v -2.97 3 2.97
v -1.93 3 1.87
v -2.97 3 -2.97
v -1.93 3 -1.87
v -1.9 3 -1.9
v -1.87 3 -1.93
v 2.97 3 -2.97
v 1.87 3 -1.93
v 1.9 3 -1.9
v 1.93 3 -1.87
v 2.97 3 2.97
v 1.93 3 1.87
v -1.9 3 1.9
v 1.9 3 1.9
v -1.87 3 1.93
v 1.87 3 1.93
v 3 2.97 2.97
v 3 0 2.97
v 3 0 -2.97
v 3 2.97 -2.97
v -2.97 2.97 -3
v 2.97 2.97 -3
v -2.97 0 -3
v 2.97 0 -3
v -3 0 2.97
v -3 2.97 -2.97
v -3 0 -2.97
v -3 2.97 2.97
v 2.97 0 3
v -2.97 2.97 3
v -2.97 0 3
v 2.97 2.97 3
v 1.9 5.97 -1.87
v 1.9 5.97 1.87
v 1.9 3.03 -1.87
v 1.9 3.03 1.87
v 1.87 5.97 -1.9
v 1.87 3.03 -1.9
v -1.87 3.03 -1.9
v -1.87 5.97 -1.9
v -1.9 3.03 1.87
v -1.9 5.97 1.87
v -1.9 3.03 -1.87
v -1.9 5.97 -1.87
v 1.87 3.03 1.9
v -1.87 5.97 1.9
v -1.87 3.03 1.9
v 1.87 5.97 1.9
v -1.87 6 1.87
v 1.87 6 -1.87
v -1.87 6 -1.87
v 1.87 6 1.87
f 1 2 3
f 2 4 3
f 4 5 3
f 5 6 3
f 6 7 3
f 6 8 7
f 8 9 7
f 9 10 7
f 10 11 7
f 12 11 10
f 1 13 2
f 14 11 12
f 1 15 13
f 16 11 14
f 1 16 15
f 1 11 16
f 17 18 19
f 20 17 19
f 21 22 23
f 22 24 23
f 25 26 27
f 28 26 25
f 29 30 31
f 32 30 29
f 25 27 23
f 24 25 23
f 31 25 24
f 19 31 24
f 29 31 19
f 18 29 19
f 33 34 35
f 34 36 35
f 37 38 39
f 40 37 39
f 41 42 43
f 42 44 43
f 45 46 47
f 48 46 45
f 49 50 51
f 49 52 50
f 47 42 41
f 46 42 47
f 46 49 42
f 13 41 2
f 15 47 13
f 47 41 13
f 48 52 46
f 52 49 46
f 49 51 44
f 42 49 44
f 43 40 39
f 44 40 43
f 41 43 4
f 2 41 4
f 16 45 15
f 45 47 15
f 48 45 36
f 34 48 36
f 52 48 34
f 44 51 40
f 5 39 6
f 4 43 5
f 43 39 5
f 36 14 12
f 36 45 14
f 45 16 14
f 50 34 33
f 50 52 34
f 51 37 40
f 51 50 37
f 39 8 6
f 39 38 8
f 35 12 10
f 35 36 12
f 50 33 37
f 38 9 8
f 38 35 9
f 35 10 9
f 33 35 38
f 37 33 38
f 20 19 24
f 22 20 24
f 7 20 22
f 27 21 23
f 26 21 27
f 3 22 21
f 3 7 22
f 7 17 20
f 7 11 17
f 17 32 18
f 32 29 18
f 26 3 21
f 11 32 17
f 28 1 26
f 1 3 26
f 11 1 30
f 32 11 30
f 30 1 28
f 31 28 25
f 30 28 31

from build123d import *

# Parameters (mm, degrees)
ESQUISSE1_W        = 6
ESQUISSE1_H        = 6
BOSS_EXTRU_1_DEPTH = 3
ESQUISSE2_W        = 3.8
ESQUISSE2_H        = 3.8
BOSS_EXTRU_2_DEPTH = 3
CHANFREIN1_SIZE    = 0.03


with BuildPart() as part:
    # Esquisse1 → Boss.-Extru.1 (new body)
    with BuildSketch(Plane(origin=(0, 0, 0), x_dir=(1, 0, 0), z_dir=(0, 1, 0))):
        Rectangle(ESQUISSE1_W, ESQUISSE1_H)
    extrude(amount=BOSS_EXTRU_1_DEPTH)

    # Esquisse2 → Boss.-Extru.2 (add)
    with BuildSketch(Plane(origin=(0, 3, 0), x_dir=(1, 0, 0), z_dir=(0, 1, 0))):
        Rectangle(ESQUISSE2_W, ESQUISSE2_H)
    extrude(amount=BOSS_EXTRU_2_DEPTH)

    # Chanfrein1
    chanfrein1_edges = [part.edges().sort_by_distance(p)[0] for p in [
        (-3, 3, 0),
        (1.9, 3, 0),
        (1.9, 4.5, 1.9),
        (0, 3, 3),
        (0, 3, -1.9),
        (1.9, 4.5, -1.9),
        (-1.9, 3, 0),
        (-1.9, 4.5, -1.9),
        (0, 3, 1.9),
        (-1.9, 4.5, 1.9),
        (1.9, 6, 0),
        (0, 6, -1.9),
        (-1.9, 6, 0),
        (0, 6, 1.9),
        (3, 3, 0),
        (3, 1.5, 3),
        (-3, 1.5, 3),
        (-3, 1.5, -3),
        (3, 1.5, -3),
        (0, 3, -3),
    ]]
    chamfer(chanfrein1_edges, length=CHANFREIN1_SIZE)


solid = part.part
